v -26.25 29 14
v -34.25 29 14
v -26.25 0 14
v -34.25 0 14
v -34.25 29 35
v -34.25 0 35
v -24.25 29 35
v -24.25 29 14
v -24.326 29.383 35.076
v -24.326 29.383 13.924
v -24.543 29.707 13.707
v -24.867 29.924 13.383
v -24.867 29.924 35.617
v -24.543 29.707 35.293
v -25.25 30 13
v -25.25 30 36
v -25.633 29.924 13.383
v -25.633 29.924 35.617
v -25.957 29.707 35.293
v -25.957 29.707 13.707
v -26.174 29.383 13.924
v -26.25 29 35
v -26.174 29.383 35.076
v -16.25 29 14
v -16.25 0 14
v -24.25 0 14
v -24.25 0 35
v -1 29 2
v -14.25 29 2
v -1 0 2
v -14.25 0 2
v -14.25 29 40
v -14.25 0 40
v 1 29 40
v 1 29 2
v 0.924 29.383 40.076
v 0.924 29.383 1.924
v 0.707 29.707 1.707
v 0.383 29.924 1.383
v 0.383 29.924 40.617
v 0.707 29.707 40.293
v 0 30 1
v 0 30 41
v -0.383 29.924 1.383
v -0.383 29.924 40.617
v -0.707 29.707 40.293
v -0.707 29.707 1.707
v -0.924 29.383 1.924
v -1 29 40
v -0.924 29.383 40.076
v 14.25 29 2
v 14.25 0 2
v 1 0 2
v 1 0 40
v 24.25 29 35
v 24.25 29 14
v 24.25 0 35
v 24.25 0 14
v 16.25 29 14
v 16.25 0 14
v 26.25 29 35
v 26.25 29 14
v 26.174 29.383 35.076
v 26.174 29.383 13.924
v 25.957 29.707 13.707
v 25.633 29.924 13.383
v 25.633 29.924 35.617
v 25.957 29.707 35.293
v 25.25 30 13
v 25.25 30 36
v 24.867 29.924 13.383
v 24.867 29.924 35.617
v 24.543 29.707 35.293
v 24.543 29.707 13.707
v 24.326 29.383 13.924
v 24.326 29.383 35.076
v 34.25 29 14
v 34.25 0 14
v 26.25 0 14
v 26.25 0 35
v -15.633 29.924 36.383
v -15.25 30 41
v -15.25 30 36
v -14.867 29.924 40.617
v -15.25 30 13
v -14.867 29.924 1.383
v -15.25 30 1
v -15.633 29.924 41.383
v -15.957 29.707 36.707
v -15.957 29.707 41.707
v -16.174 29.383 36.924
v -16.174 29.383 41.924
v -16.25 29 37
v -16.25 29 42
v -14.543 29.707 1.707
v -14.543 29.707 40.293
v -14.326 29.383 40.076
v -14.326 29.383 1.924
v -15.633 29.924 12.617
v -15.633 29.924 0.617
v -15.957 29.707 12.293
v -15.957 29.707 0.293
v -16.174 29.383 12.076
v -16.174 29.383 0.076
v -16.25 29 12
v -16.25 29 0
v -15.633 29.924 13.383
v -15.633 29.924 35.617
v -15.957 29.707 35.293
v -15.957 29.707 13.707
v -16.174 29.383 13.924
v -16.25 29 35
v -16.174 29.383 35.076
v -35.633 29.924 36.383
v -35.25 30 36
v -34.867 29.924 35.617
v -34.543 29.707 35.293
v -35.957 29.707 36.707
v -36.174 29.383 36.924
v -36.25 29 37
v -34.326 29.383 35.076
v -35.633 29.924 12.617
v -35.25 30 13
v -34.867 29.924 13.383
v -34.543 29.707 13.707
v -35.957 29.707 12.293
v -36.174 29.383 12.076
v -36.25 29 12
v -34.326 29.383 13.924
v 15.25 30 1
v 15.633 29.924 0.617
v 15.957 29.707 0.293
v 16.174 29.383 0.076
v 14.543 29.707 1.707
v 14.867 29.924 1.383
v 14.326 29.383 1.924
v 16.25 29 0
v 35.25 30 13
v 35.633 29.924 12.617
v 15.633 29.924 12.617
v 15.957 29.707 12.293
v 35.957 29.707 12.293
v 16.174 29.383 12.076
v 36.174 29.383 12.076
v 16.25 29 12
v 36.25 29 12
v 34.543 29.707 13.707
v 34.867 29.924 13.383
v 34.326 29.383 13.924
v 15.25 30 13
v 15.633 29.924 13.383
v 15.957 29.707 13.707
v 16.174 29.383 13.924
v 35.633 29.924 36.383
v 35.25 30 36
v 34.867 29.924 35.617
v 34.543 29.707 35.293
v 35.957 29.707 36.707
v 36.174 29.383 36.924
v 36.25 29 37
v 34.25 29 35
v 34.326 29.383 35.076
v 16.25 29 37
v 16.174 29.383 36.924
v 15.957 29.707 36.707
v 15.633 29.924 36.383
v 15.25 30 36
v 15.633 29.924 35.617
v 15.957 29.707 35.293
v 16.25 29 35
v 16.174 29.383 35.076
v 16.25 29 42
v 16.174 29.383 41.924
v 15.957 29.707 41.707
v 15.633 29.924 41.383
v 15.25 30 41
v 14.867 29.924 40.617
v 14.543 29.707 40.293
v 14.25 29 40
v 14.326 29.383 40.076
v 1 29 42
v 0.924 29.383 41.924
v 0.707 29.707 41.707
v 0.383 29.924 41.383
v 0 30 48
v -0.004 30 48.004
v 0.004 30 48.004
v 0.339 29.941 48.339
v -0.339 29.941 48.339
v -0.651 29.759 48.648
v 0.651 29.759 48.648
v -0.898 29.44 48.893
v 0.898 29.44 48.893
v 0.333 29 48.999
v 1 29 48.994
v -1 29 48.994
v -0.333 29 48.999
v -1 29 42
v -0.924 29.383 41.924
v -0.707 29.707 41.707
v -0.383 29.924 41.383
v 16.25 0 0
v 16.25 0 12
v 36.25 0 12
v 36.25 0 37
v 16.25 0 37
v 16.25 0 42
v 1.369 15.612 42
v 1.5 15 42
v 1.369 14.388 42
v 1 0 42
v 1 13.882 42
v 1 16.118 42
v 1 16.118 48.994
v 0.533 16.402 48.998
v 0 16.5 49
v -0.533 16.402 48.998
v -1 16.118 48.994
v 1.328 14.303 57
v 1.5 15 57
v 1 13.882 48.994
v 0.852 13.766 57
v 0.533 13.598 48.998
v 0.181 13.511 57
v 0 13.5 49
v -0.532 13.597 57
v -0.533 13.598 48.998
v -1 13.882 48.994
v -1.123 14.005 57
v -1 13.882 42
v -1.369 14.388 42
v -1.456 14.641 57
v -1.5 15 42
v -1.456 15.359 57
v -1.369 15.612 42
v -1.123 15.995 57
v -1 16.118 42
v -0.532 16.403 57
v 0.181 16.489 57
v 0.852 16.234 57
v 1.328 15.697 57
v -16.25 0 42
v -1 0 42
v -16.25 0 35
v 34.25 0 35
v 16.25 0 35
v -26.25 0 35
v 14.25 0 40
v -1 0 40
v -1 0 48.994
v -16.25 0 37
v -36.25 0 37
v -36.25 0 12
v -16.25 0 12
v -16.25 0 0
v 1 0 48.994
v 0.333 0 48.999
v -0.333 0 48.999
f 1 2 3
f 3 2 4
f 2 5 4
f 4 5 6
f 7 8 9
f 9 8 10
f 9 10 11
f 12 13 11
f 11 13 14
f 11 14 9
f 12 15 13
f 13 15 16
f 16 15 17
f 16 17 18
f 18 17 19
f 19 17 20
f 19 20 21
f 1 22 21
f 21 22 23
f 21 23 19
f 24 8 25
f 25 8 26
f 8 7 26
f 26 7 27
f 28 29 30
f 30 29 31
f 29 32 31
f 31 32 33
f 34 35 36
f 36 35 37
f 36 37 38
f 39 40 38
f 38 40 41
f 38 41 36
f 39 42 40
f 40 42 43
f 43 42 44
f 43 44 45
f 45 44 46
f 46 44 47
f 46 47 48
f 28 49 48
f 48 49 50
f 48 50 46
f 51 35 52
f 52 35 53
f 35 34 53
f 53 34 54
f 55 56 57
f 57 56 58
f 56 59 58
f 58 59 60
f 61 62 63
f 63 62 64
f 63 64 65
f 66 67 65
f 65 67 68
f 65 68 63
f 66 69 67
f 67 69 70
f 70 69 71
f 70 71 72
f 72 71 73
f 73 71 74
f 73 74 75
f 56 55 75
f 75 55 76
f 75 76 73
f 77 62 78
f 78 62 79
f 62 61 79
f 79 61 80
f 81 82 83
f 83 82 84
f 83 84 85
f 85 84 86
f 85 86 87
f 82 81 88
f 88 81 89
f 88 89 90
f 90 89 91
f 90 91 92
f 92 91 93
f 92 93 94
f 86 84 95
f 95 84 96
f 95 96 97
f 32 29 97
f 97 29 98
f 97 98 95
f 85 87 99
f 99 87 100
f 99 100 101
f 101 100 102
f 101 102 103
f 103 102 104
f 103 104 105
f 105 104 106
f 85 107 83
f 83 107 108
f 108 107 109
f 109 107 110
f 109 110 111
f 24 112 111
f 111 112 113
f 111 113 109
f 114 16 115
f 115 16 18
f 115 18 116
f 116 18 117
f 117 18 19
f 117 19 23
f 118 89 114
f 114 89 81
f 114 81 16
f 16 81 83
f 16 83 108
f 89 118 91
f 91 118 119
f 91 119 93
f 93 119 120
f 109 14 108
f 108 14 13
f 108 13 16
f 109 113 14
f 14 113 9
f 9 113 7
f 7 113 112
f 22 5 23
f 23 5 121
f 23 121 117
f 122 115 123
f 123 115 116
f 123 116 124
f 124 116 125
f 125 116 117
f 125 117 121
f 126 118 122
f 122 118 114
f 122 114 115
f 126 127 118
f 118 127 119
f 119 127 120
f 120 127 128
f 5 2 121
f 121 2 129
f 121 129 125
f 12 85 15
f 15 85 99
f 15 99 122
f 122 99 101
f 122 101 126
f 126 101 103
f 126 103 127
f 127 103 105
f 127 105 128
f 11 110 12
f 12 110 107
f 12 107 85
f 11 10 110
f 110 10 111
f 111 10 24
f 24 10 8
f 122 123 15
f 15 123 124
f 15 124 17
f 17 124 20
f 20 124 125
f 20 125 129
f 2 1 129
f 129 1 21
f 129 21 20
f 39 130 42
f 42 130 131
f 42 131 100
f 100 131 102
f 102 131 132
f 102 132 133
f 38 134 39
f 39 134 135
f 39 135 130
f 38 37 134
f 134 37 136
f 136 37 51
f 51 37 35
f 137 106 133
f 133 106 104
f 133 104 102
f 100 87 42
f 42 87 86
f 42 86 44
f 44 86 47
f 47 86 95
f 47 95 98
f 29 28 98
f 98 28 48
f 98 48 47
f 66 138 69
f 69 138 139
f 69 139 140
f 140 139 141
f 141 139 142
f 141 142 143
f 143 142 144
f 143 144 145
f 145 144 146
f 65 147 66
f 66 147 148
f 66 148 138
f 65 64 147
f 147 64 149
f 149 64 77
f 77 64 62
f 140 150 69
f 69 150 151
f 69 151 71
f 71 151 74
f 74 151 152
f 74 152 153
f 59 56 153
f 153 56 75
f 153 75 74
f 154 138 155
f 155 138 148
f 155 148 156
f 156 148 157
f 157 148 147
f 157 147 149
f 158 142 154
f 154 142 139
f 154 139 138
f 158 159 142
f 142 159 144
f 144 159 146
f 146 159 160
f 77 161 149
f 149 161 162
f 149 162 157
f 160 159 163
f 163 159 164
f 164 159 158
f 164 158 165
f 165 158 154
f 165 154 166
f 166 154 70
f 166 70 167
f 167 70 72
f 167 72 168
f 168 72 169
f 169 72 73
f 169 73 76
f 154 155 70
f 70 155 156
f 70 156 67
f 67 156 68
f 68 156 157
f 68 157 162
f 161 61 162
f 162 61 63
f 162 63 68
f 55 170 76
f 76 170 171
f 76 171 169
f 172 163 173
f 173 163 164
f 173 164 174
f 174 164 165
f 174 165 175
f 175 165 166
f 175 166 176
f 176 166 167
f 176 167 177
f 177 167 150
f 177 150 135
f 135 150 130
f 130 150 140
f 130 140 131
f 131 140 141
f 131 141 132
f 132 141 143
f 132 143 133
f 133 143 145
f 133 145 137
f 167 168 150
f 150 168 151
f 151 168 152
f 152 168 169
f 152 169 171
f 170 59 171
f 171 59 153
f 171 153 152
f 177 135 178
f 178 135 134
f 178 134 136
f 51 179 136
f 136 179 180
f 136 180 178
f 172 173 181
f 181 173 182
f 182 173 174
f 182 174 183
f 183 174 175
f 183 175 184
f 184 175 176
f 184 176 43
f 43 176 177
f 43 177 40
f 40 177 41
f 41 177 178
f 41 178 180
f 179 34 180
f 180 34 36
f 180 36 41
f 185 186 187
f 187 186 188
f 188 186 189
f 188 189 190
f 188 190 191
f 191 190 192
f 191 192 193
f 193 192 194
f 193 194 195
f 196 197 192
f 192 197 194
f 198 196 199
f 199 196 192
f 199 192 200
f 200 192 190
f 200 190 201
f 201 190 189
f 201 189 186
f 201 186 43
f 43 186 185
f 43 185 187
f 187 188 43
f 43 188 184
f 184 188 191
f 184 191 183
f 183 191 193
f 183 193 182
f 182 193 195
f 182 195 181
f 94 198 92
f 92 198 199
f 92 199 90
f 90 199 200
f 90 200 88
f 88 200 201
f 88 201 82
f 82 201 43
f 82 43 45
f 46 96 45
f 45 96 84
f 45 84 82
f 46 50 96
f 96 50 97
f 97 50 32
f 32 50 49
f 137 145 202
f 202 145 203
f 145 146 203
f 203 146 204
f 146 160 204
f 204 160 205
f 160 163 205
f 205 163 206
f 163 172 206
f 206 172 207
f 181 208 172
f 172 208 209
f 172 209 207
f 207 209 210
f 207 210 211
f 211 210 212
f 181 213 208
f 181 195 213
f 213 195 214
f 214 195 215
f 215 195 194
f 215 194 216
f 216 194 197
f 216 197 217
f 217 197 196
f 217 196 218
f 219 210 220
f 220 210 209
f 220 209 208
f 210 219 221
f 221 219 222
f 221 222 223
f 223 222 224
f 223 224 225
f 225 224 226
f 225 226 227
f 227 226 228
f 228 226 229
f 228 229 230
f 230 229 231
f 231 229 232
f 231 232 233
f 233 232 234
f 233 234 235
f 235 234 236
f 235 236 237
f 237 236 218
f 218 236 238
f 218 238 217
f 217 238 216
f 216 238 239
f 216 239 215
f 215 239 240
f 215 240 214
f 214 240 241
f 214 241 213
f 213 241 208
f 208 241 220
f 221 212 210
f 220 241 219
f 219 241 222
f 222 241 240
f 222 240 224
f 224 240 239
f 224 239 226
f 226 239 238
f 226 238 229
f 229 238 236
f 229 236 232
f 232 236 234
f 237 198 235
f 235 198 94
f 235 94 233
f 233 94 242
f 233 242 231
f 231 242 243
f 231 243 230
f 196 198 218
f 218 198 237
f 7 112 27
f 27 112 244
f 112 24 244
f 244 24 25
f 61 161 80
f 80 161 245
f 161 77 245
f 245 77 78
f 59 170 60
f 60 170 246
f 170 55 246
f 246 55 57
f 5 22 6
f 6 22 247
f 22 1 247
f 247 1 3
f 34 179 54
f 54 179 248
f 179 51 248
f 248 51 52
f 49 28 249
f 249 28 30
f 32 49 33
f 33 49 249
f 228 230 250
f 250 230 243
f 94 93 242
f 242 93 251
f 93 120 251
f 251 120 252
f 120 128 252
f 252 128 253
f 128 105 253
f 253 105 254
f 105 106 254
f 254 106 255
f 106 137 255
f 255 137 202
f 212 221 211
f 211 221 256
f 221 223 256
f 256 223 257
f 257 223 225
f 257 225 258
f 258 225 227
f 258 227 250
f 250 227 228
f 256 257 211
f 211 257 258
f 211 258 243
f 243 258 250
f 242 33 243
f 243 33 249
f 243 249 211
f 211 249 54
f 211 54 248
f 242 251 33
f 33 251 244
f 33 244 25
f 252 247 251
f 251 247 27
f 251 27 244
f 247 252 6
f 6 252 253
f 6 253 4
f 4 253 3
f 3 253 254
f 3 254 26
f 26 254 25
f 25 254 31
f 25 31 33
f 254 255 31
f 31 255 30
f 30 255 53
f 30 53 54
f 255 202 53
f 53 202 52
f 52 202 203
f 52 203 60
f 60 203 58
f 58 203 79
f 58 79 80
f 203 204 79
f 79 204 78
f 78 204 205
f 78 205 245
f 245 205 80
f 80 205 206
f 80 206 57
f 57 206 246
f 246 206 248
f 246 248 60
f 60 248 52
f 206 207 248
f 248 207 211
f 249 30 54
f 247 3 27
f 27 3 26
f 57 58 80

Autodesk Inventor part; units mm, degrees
ref_plane "YZ Plane" through (0, 0, 0) normal (1, 0, 0) x (0, 1, 0)
ref_plane "XZ Plane" through (0, 0, 0) normal (0, 1, 0) x (-1, 0, 0)
ref_plane "XY Plane" through (0, 0, 0) normal (0, 0, 1) x (1, 0, 0)
sketch "Szkic1" plane through (0, 0, 0) normal (0, 1, 0) x (-1, 0, 0)
  line L0 (16.25, 0) -> (-16.25, 0)
  line L1 (-16.25, 0) -> (-16.25, 2)
  line L2 (-16.25, 2) -> (16.25, 2)
  line L3 (16.25, 2) -> (16.25, 0)
  line L4 (-1, 2) -> (1, 2)
  line L5 (1, 2) -> (1, 49)
  line L6 (1, 49) -> (-1, 49)
  line L7 (-1, 49) -> (-1, 2)
  line L8 (16.25, 2) -> (14.25, 2)
  line L9 (14.25, 2) -> (14.25, 42)
  line L10 (14.25, 42) -> (16.25, 42)
  line L11 (16.25, 42) -> (16.25, 2)
  line L12 (-16.25, 2) -> (-14.25, 2)
  line L13 (-14.25, 2) -> (-14.25, 42)
  line L14 (-14.25, 42) -> (-16.25, 42)
  line L15 (-16.25, 42) -> (-16.25, 2)
  line L16 (14.25, 42) -> (1, 42)
  line L17 (1, 42) -> (1, 40)
  line L18 (1, 40) -> (14.25, 40)
  line L19 (14.25, 40) -> (14.25, 42)
  line L20 (-14.25, 42) -> (-1, 42)
  line L21 (-1, 42) -> (-1, 40)
  line L22 (-1, 40) -> (-14.25, 40)
  line L23 (-14.25, 40) -> (-14.25, 42)
  line L24 (16.25, 37) -> (36.25, 37)
  line L25 (36.25, 37) -> (36.25, 12)
  line L26 (36.25, 12) -> (16.25, 12)
  line L27 (16.25, 12) -> (16.25, 37)
  line L28 (-16.25, 37) -> (-36.25, 37)
  line L29 (-36.25, 37) -> (-36.25, 12)
  line L30 (-36.25, 12) -> (-16.25, 12)
  line L31 (-16.25, 12) -> (-16.25, 37)
  circle A0 centre (0, -31.074) radius 80.074
  line L32 (36.25, 37) -> (34.25, 37)
  line L33 (34.25, 37) -> (34.25, 12)
  line L34 (34.25, 12) -> (36.25, 12)
  line L35 (36.25, 12) -> (36.25, 37)
  line L36 (34.25, 37) -> (16.25, 37)
  line L37 (16.25, 37) -> (16.25, 35)
  line L38 (16.25, 35) -> (34.25, 35)
  line L39 (34.25, 35) -> (34.25, 37)
  line L40 (34.25, 12) -> (16.25, 12)
  line L41 (16.25, 12) -> (16.25, 14)
  line L42 (16.25, 14) -> (34.25, 14)
  line L43 (34.25, 14) -> (34.25, 12)
  line L44 (-16.25, 37) -> (-36.25, 37)
  line L45 (-36.25, 37) -> (-36.25, 35)
  line L46 (-36.25, 35) -> (-16.25, 35)
  line L47 (-16.25, 35) -> (-16.25, 37)
  line L48 (-16.25, 12) -> (-36.25, 12)
  line L49 (-36.25, 12) -> (-36.25, 14)
  line L50 (-36.25, 14) -> (-16.25, 14)
  line L51 (-16.25, 14) -> (-16.25, 12)
  line L52 (-36.25, 35) -> (-34.25, 35)
  line L53 (-34.25, 35) -> (-34.25, 14)
  line L54 (-34.25, 14) -> (-36.25, 14)
  line L55 (-36.25, 14) -> (-36.25, 35)
  line L56 (26.25, 35) -> (24.25, 35)
  line L57 (24.25, 35) -> (24.25, 14)
  line L58 (24.25, 14) -> (26.25, 14)
  line L59 (26.25, 14) -> (26.25, 35)
  line L60 (-24.25, 35) -> (-26.25, 35)
  line L61 (-26.25, 35) -> (-26.25, 14)
  line L62 (-26.25, 14) -> (-24.25, 14)
  line L63 (-24.25, 14) -> (-24.25, 35)
  point P0 (0, 0)
  point P1 (0, 0)
  point P2 (0, 2)
  point P3 (7.625, 40)
  point P4 (7.625, 42)
  point P5 (0, 49)
  point P6 (26.25, 37)
  point P7 (26.25, 14)
  point P8 (1, 42)
  point P9 (1, 48.9938)
  point P10 (-1, 48.9938)
  point P11 (-1, 42)
  point P12 (-16.25, 12)
  point P13 (16.25, 12)
  point P14 (-16.25, 14)
  point P15 (16.25, 14)
  dimension "d0" = 32.5
  dimension "d1" = 2
  dimension "d2" = 2
  dimension "d3" = 49
  dimension "d4" = 40
  dimension "d5" = 2
  dimension "d6" = 2
  dimension "d7" = 2
  dimension "d8" = 20
  dimension "d9" = 20
  dimension "d10" = 25
  dimension "d11" = 25
  dimension "d12" = 160.148
  dimension "d13" = 80.074
  dimension "d14" = 5
  dimension "d15" = 5
  dimension "d16" = 2
  dimension "d17" = 2
  dimension "d18" = 2
  dimension "d19" = 2
  dimension "d20" = 2
  dimension "d21" = 2
  dimension "d22" = 2
  dimension "d23" = 8
  dimension "d24" = 8
extrude "Wyciągnięcie proste1" add sketch "Szkic1" along normal blind 30 contours L0 L1 L2 L3 | L2 L9 L10 L11 | L15 L14 L13 L2 | L11 L42 L33 L26 | L30 L29 L50 L15 | L2 L7 A0 L5 | L18 L5 L16 L9 | L33 L24 L25 L26 | L13 L20 L7 L22 | L11 L24 L33 L38 | L57 L38 L59 L42 | L46 L29 L28 L15 | L50 L61 L46 L63 | L29 L46 L53 L50
sketch "Szkic2" plane through (1, 0, 42) normal (0, 0, 1) x (1, 0, 0)
  circle A0 centre (-1, 15) radius 1.5
  line L0 (0, 30) -> (15.25, 30) projected
  line L1 (0, 0) -> (0, 30) projected
  point P0 (-1, 0)
  dimension "d27" = 3
  dimension "d30" = 15
  dimension "d31" = 1
extrude "Wyciągnięcie proste2" add sketch "Szkic2" along normal blind 15
fillet "Zaokrąglenie1" radius 1 40 edges at (36.25, 30, 24.5) (34.25, 30, 24.5) (26.25, 30, 37) (30.25, 30, 35) (26.25, 30, 24.5) (20.25, 30, 35) (24.25, 30, 24.5) (30.25, 30, 14) (26.25, 30, 12) (20.25, 30, 14) (1, 30, 45.4969) (0, 30, 49) (-1, 30, 45.4969) (8.625, 30, 42) (16.25, 30, 39.5) (16.25, 30, 24.5) (14.25, 30, 21) (16.25, 30, 6) (7.625, 30, 2) (0, 30, 0) (1, 30, 21) (-1, 30, 21) (7.625, 30, 40) (-7.625, 30, 40) (-8.625, 30, 42) (-16.25, 30, 39.5) (-14.25, 30, 21) (-16.25, 30, 24.5) (-26.25, 30, 37) (-20.25, 30, 35) (-24.25, 30, 24.5) (-26.25, 30, 24.5) (-30.25, 30, 35) (-34.25, 30, 24.5) (-36.25, 30, 24.5) (-30.25, 30, 14) (-26.25, 30, 12) (-20.25, 30, 14) (-16.25, 30, 6) (-7.625, 30, 2)
equation "\"d5\" = d2"
equation "\"d6\" = d2"
equation "\"d7\" = d1"
equation "\"d9\" = d8"
equation "\"d11\" = d10"
equation "\"d13\" = 0.5 * d12"
equation "\"d15\" = d14"
equation "\"d16\" = d6"
equation "\"d18\" = d17"
equation "\"d19\" = d18"
equation "\"d22\" = d21"
properties part number "klapy"
